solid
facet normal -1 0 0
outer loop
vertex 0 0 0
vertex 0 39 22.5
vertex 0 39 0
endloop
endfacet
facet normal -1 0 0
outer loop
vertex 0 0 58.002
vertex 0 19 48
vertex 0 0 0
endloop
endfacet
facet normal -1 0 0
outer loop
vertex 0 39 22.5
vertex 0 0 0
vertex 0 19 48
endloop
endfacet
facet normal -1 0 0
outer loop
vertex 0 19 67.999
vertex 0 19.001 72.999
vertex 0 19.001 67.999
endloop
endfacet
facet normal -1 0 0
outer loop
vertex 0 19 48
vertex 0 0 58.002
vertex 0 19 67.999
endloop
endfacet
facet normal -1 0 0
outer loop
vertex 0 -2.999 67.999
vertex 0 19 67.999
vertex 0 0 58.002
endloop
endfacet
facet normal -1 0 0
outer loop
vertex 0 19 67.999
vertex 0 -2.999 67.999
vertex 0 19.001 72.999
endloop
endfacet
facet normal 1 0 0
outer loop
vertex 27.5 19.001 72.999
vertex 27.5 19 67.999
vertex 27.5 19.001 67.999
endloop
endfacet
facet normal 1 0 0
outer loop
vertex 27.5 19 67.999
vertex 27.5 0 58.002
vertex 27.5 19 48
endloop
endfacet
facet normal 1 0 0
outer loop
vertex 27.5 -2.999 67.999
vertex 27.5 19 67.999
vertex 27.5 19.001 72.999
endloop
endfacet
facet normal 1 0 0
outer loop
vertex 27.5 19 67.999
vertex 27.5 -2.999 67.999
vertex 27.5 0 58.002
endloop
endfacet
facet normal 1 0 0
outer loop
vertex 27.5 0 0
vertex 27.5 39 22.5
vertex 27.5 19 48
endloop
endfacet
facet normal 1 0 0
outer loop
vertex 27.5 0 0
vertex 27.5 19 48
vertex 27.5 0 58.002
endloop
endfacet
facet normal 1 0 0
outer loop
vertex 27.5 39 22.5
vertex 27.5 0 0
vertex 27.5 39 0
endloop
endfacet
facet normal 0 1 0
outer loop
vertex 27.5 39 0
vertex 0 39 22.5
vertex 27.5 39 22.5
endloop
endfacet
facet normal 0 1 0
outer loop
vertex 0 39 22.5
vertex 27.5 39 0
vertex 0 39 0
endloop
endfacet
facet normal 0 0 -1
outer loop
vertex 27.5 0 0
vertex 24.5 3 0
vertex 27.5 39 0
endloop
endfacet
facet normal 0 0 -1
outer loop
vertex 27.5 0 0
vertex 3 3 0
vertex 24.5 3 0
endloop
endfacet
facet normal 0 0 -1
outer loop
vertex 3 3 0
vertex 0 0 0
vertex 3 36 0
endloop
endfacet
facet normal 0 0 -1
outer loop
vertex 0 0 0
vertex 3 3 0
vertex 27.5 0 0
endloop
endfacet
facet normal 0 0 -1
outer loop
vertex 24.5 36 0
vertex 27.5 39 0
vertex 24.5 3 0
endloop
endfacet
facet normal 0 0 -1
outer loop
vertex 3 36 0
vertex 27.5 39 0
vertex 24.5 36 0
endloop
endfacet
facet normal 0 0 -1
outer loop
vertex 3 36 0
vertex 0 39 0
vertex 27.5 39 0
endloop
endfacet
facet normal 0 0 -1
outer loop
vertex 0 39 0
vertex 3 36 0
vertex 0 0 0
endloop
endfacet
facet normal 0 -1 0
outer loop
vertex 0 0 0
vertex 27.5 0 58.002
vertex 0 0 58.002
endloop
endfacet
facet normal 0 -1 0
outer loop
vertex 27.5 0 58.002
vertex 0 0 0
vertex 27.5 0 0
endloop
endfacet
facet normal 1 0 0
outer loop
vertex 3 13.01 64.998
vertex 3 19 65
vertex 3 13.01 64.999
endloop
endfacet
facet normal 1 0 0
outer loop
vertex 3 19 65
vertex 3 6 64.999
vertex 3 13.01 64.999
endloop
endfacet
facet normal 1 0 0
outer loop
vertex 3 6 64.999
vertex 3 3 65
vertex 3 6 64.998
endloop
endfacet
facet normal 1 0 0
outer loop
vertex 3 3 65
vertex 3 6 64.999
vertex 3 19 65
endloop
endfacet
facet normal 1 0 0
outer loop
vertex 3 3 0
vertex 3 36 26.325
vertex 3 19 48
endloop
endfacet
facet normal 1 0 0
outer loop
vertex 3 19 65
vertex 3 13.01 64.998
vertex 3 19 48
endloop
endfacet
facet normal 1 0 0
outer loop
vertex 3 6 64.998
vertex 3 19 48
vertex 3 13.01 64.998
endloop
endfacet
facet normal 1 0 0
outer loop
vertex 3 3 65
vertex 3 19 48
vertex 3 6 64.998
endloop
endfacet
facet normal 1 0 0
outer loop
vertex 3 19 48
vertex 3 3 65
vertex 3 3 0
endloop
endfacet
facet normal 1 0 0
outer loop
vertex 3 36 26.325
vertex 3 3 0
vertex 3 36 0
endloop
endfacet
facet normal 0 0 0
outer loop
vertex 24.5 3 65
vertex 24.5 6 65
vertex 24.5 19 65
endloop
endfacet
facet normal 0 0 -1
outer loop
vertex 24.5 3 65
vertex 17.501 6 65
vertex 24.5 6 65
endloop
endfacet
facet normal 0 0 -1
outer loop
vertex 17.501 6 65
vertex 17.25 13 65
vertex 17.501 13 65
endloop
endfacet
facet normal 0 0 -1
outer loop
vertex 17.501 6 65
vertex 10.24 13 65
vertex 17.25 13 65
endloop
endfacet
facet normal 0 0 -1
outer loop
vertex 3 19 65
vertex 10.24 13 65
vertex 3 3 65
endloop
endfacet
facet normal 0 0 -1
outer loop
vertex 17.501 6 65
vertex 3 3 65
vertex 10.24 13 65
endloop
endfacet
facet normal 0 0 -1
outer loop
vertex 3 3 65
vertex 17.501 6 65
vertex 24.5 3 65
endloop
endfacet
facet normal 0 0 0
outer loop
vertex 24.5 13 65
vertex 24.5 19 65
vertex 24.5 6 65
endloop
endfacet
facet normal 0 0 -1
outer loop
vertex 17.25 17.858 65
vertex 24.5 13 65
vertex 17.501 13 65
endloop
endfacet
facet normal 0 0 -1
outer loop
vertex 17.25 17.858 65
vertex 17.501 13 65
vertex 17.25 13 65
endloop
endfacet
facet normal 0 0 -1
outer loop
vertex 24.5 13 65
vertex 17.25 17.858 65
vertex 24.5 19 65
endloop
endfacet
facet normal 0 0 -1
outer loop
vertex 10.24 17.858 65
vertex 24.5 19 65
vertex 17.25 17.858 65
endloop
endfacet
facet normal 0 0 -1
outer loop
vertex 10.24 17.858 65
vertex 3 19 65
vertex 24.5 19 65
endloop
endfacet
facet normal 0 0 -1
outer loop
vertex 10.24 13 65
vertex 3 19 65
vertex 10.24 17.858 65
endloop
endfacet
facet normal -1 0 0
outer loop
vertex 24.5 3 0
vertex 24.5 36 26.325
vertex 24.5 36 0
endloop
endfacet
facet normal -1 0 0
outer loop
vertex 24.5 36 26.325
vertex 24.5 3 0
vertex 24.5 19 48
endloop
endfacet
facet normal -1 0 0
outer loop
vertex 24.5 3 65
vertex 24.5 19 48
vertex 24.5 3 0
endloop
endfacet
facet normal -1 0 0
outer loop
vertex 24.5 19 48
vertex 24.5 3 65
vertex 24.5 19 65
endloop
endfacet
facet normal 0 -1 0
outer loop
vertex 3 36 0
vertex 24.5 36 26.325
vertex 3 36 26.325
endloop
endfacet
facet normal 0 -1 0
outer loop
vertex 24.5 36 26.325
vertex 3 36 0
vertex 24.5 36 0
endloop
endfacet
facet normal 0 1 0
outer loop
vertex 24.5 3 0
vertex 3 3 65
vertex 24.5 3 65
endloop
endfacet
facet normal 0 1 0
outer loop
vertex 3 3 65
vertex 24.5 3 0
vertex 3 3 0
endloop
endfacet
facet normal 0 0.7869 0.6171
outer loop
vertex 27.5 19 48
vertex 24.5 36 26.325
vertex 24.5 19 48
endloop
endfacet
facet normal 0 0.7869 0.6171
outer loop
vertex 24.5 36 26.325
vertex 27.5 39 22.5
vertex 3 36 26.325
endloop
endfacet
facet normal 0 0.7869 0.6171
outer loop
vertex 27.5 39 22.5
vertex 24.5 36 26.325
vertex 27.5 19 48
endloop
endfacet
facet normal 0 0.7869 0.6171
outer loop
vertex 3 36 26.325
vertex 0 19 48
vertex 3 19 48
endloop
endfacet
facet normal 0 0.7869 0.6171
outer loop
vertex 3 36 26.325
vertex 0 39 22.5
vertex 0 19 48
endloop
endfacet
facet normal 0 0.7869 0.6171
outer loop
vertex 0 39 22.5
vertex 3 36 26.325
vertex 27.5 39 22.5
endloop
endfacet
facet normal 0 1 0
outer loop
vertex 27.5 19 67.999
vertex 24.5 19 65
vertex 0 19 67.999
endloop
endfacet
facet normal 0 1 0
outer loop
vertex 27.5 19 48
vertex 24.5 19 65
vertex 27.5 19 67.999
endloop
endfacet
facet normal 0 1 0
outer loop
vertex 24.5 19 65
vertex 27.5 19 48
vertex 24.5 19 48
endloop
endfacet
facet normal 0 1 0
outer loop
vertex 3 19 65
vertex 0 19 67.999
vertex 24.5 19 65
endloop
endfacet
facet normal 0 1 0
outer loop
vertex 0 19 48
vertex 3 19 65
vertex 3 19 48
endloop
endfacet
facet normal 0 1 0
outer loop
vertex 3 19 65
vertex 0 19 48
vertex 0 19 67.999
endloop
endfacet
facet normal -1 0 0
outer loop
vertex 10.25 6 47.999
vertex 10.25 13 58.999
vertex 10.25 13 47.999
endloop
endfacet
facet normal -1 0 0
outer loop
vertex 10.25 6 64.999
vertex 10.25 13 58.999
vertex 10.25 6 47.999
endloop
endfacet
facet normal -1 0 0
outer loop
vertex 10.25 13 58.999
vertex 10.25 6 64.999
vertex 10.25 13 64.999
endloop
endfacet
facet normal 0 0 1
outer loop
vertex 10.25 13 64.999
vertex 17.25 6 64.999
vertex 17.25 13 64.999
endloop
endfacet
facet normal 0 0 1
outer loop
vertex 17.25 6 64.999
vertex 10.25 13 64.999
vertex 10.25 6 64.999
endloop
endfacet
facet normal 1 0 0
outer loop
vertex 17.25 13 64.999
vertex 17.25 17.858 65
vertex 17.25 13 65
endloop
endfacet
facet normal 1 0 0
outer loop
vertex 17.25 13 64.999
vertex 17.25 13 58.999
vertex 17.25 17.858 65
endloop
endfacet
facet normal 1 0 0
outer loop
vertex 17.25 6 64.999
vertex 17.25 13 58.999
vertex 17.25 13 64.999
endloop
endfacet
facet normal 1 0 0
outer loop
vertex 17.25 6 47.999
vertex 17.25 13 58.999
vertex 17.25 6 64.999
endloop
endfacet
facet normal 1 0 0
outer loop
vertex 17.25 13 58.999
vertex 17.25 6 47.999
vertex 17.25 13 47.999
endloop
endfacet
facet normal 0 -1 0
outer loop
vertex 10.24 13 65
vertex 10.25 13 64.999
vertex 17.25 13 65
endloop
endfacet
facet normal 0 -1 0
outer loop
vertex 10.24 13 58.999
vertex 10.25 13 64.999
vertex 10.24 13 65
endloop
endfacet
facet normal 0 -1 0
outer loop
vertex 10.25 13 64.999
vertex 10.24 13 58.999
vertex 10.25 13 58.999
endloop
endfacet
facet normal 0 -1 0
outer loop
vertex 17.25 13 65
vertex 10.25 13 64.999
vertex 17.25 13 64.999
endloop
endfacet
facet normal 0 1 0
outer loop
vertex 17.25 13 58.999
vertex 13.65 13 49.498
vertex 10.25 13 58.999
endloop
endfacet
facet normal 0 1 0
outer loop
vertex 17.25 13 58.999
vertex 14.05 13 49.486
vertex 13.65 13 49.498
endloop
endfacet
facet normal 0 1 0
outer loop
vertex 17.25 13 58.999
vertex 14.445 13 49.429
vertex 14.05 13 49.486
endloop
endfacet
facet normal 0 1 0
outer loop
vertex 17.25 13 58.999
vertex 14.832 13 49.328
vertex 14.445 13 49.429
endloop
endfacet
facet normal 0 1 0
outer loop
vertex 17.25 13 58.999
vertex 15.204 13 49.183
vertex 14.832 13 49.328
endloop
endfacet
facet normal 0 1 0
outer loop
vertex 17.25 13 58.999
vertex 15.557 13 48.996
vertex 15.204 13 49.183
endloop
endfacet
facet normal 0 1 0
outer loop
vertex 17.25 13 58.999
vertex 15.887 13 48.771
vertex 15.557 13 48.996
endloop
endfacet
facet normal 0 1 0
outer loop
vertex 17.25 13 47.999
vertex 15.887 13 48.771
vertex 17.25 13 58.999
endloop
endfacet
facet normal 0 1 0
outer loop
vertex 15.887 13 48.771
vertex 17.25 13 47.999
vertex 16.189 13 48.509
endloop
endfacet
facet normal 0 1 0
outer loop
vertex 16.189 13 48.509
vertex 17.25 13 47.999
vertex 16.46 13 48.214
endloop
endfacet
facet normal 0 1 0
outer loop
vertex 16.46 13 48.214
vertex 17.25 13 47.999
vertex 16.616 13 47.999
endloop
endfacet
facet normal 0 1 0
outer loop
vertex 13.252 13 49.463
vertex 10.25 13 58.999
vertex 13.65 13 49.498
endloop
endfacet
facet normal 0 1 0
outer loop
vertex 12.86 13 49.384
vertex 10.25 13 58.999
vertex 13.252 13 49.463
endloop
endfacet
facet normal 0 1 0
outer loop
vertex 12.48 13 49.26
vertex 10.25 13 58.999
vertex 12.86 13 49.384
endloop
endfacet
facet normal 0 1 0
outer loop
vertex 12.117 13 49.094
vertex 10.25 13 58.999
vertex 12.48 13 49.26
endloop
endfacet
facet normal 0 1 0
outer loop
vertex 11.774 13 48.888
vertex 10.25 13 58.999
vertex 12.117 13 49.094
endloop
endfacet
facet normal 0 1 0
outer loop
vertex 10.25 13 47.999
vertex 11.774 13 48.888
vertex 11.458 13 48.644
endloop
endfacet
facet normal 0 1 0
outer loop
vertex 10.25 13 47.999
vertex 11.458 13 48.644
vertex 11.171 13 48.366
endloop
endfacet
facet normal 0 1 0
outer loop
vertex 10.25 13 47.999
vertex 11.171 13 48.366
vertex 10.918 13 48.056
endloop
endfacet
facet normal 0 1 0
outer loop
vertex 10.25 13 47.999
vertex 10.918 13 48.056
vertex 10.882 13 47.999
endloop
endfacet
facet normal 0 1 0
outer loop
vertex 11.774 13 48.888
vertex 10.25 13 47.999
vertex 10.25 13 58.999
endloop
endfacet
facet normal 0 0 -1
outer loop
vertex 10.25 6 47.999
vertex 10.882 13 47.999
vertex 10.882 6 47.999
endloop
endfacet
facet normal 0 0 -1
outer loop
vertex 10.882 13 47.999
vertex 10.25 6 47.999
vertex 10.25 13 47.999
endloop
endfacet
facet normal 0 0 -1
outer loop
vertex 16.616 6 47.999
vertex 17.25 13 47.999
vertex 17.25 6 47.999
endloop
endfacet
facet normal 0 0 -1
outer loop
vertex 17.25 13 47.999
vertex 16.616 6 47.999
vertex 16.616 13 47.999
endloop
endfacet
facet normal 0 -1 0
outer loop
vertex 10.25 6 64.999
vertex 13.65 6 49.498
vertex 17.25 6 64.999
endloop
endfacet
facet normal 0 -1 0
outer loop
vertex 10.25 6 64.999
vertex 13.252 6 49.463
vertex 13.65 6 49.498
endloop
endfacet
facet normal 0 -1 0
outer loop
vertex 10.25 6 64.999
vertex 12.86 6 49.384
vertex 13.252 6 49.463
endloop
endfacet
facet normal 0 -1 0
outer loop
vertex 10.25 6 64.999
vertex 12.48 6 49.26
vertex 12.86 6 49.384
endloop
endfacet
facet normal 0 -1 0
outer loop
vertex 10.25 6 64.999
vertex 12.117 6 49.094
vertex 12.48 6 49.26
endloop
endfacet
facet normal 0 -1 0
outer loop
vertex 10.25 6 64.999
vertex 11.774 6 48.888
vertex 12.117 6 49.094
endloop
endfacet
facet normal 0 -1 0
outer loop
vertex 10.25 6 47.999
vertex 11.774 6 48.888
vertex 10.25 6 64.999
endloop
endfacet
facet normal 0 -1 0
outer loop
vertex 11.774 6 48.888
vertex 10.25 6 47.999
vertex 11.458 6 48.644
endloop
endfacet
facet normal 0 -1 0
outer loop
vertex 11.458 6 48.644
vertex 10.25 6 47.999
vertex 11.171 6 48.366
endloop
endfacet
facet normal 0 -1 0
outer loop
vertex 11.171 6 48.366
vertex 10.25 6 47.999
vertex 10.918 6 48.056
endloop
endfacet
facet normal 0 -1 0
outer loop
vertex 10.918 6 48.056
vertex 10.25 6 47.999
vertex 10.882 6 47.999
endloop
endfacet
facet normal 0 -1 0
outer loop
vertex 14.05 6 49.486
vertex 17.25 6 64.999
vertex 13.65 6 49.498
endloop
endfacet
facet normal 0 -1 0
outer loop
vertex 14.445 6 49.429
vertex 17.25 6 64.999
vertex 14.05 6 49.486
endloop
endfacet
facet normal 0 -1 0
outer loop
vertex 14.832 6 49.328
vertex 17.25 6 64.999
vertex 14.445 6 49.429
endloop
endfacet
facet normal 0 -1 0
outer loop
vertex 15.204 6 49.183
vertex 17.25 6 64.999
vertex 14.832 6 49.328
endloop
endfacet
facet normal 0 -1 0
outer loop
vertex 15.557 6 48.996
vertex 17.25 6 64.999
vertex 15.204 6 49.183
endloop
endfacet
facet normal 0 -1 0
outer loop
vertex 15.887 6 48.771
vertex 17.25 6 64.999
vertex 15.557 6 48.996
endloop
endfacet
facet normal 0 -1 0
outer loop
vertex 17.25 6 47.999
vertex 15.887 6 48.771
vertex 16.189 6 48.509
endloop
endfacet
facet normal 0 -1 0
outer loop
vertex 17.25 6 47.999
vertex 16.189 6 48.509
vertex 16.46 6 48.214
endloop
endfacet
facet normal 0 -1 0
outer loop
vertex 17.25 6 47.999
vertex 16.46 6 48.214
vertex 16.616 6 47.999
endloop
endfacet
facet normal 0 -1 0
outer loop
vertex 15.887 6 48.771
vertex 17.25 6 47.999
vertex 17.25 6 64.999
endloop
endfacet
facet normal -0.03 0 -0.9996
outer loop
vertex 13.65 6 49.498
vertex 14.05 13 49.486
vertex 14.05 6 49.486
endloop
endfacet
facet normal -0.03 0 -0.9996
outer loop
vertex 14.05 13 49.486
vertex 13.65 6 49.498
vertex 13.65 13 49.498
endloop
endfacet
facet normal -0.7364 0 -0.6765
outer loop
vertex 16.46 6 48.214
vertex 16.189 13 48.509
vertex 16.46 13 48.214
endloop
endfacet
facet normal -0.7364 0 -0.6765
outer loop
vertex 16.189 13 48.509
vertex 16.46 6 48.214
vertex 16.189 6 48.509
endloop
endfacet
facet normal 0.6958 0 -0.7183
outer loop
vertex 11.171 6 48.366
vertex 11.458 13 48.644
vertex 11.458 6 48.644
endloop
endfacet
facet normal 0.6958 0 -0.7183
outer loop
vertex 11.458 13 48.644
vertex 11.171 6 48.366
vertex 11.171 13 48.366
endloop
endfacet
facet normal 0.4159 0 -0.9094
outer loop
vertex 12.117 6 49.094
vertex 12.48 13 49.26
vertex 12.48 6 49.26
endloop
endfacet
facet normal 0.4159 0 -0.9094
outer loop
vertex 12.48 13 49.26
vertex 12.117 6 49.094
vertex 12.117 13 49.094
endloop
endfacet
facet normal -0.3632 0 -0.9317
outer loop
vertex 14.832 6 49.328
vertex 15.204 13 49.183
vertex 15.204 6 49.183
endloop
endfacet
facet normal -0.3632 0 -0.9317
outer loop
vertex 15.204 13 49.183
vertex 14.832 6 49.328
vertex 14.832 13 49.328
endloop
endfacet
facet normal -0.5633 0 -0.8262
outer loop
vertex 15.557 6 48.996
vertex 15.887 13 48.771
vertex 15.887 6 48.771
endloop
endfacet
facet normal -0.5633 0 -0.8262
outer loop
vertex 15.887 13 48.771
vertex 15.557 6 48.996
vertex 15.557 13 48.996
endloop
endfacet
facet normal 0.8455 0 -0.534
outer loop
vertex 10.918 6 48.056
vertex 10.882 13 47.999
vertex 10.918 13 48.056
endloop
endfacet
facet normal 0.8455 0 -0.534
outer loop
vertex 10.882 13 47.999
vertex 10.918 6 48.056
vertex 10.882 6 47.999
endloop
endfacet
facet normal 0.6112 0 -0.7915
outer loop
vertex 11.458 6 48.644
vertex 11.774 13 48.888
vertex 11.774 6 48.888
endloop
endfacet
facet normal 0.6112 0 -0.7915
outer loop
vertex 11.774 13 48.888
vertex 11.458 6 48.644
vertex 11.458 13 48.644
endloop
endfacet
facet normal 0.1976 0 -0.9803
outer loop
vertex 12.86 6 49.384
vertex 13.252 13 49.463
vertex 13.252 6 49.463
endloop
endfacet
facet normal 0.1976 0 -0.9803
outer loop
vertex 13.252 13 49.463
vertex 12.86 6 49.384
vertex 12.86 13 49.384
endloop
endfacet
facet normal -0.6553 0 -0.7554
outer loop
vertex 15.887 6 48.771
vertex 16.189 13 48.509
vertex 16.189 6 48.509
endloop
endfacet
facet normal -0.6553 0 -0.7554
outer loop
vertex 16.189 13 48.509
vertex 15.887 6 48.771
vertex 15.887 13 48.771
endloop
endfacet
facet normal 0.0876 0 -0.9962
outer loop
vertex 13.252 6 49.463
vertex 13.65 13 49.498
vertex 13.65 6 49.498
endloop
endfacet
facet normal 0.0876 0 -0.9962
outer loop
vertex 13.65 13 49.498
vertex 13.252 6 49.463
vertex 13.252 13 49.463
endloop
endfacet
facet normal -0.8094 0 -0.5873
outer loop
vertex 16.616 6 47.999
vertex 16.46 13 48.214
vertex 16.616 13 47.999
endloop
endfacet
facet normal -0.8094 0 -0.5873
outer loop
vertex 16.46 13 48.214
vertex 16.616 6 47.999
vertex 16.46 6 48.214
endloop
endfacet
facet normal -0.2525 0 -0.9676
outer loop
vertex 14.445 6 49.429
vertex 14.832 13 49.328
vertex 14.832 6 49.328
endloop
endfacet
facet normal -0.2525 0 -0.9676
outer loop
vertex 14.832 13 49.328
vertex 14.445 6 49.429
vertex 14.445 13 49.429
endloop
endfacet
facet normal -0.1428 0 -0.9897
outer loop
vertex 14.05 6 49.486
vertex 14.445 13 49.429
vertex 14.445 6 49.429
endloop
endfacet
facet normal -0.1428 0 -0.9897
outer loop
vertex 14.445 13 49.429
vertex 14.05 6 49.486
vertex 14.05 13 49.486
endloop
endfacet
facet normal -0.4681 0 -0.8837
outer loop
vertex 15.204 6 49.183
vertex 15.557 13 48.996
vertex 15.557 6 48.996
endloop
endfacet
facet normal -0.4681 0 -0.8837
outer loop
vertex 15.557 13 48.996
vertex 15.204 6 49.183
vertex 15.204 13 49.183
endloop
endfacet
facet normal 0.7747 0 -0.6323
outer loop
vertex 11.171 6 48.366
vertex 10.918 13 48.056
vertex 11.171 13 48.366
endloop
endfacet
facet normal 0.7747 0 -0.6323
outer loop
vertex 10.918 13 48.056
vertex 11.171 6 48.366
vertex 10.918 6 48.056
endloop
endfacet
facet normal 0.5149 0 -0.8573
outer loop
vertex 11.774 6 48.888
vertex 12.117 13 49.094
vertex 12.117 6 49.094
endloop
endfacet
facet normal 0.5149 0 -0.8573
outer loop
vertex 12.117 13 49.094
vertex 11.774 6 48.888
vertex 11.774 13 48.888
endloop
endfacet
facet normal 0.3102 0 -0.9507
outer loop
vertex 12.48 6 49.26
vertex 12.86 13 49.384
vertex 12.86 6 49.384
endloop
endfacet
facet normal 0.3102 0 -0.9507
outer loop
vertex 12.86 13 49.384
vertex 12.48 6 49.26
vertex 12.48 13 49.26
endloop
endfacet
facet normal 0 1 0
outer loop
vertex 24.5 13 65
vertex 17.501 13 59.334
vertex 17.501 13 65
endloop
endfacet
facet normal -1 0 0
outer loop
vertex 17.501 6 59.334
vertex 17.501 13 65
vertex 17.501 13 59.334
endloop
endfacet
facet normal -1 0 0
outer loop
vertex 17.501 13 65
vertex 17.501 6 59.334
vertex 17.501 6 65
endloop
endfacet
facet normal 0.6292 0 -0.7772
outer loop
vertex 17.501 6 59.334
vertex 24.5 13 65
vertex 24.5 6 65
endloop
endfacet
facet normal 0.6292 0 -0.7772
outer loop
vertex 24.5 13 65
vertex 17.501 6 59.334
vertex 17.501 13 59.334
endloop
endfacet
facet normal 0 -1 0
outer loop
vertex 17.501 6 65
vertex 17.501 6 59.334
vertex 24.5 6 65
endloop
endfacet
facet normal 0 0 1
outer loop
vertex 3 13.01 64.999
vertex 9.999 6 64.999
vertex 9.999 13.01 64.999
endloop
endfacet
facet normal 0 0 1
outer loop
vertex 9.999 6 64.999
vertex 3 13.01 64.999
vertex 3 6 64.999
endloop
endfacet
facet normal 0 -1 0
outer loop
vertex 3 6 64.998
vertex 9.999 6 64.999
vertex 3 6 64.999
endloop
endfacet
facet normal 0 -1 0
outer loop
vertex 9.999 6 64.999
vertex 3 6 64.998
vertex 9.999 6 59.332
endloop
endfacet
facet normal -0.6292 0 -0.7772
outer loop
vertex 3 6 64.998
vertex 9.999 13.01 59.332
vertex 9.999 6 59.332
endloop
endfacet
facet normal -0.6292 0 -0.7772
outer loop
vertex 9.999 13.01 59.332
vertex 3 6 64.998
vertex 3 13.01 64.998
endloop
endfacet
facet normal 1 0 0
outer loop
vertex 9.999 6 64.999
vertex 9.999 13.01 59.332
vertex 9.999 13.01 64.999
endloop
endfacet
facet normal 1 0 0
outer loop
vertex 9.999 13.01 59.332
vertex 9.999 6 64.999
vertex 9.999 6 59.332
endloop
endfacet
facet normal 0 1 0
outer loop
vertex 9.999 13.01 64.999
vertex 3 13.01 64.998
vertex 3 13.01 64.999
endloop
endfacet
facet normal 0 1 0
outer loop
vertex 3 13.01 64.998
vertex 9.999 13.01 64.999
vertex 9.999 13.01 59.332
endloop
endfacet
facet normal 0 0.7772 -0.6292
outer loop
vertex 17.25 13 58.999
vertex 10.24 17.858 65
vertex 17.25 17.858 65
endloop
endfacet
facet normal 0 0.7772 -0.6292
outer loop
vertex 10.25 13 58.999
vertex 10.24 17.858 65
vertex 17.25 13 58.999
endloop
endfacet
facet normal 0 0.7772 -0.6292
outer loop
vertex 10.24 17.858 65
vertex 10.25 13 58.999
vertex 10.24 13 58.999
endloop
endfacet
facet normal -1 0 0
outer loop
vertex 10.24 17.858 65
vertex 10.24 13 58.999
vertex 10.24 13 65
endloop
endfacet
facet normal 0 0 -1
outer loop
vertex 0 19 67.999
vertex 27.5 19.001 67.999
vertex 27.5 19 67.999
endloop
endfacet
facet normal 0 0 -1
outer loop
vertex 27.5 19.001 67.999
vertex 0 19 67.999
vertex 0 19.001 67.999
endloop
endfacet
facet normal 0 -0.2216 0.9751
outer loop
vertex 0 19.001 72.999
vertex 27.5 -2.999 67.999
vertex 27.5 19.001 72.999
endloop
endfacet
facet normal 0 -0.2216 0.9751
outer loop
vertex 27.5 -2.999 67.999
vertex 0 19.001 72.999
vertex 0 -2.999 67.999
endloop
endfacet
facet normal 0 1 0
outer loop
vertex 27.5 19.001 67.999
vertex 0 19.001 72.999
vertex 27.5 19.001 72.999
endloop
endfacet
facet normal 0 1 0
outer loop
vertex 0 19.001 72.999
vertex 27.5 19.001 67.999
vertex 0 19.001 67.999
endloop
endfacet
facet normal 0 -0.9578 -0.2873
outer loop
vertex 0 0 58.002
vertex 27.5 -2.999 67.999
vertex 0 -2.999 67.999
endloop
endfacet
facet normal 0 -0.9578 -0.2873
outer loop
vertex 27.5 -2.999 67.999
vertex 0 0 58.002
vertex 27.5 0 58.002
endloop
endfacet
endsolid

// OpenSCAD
$fa = 1;
$fs = 0.4;

// Width of magazine in mm
widthOfMag = 21.5;
// Depth of magazine in mm
depthOfMag = 33;
// Height of speedloader in mm
height = 65;
// Width of plunger in mm
widthOfPlunger = 7;
// Length of plunger in mm
lengthOfPlunger = 17;
// Thickness of walls in mm
thickness = 3;
// How deep the cutout should be at the top
cutoutDepthTop = 13;
// How far down the cutout should go
cutoutHeightTop = lengthOfPlunger * 2.5;
    
difference() {
    // create outer shell
    cube ([widthOfMag + thickness * 2, depthOfMag + thickness * 2, height + thickness]);

    // hollow out the inner space
    translate([thickness, thickness, -thickness])
        cube ([widthOfMag, depthOfMag, height + thickness]);
 
    // cut out the angled bit
    translate([0,depthOfMag+thickness*2,height-cutoutHeightTop])
        rotate([90,0,0])
        prism(l=widthOfMag+thickness*2,w=height+thickness-cutoutHeightTop,h=depthOfMag-cutoutDepthTop); 
    
    // cut out the square at the top
    translate([0, cutoutDepthTop + thickness * 2, height - cutoutDepthTop - thickness - 1])
        cube([widthOfMag + thickness * 2, depthOfMag - cutoutDepthTop, height - cutoutHeightTop + thickness * 2]);
}

// plunger
translate([(widthOfMag - widthOfPlunger) / 2 + thickness, thickness * 2, height - lengthOfPlunger - 0.001])
    difference() {
        // overall plunger
        cube([widthOfPlunger, widthOfPlunger, lengthOfPlunger]);
  
        // indent
        translate([widthOfPlunger/2, widthOfPlunger, -2])
            rotate([90,0,0])
            cylinder(r=widthOfPlunger/2,h=widthOfPlunger* 2);
    };
    
// plunger support left
translate([widthOfMag + thickness + 0.001, thickness * 2 + widthOfPlunger, height + 0.001])
    rotate([0,180,90])
    prism(widthOfPlunger, widthOfPlunger, lengthOfPlunger / 3);
    
// plunger support right
translate([thickness-0.001, widthOfPlunger-1, height - 0.001])
    rotate([0,180,-90])
    prism(widthOfPlunger+0.01, widthOfPlunger, lengthOfPlunger / 3);

// plunger support front
translate([(widthOfMag - widthOfPlunger) / 2 + thickness + widthOfPlunger, widthOfPlunger + thickness * 2, height -thickness*2- 0.001])
    rotate([-90,180,00])
    prism(widthOfPlunger+0.01, widthOfPlunger, lengthOfPlunger / 3);

// comfort angle on top
color("green")
translate([0, -2.999, height + thickness - 0.001])
prism(widthOfMag + thickness * 2, cutoutDepthTop + thickness * 2 + 3, 5);
    
// comfort angle on side
color("blue")
translate([0, -2.999, height + thickness - 0.001])
rotate([180,0,0])
mirror(v = [0,1,0])
prism(widthOfMag + thickness * 2, 3, 10);
  
// From https://en.wikibooks.org/wiki/OpenSCAD_User_Manual/Primitive_Solids
module prism(l, w, h){
    polyhedron(
        points=[[0,0,0], [l,0,0], [l,w,0], [0,w,0], [0,w,h], [l,w,h]],
        faces=[[0,1,2,3],[5,4,3,2],[0,4,5,1],[0,3,4],[5,2,1]]
    );
}
